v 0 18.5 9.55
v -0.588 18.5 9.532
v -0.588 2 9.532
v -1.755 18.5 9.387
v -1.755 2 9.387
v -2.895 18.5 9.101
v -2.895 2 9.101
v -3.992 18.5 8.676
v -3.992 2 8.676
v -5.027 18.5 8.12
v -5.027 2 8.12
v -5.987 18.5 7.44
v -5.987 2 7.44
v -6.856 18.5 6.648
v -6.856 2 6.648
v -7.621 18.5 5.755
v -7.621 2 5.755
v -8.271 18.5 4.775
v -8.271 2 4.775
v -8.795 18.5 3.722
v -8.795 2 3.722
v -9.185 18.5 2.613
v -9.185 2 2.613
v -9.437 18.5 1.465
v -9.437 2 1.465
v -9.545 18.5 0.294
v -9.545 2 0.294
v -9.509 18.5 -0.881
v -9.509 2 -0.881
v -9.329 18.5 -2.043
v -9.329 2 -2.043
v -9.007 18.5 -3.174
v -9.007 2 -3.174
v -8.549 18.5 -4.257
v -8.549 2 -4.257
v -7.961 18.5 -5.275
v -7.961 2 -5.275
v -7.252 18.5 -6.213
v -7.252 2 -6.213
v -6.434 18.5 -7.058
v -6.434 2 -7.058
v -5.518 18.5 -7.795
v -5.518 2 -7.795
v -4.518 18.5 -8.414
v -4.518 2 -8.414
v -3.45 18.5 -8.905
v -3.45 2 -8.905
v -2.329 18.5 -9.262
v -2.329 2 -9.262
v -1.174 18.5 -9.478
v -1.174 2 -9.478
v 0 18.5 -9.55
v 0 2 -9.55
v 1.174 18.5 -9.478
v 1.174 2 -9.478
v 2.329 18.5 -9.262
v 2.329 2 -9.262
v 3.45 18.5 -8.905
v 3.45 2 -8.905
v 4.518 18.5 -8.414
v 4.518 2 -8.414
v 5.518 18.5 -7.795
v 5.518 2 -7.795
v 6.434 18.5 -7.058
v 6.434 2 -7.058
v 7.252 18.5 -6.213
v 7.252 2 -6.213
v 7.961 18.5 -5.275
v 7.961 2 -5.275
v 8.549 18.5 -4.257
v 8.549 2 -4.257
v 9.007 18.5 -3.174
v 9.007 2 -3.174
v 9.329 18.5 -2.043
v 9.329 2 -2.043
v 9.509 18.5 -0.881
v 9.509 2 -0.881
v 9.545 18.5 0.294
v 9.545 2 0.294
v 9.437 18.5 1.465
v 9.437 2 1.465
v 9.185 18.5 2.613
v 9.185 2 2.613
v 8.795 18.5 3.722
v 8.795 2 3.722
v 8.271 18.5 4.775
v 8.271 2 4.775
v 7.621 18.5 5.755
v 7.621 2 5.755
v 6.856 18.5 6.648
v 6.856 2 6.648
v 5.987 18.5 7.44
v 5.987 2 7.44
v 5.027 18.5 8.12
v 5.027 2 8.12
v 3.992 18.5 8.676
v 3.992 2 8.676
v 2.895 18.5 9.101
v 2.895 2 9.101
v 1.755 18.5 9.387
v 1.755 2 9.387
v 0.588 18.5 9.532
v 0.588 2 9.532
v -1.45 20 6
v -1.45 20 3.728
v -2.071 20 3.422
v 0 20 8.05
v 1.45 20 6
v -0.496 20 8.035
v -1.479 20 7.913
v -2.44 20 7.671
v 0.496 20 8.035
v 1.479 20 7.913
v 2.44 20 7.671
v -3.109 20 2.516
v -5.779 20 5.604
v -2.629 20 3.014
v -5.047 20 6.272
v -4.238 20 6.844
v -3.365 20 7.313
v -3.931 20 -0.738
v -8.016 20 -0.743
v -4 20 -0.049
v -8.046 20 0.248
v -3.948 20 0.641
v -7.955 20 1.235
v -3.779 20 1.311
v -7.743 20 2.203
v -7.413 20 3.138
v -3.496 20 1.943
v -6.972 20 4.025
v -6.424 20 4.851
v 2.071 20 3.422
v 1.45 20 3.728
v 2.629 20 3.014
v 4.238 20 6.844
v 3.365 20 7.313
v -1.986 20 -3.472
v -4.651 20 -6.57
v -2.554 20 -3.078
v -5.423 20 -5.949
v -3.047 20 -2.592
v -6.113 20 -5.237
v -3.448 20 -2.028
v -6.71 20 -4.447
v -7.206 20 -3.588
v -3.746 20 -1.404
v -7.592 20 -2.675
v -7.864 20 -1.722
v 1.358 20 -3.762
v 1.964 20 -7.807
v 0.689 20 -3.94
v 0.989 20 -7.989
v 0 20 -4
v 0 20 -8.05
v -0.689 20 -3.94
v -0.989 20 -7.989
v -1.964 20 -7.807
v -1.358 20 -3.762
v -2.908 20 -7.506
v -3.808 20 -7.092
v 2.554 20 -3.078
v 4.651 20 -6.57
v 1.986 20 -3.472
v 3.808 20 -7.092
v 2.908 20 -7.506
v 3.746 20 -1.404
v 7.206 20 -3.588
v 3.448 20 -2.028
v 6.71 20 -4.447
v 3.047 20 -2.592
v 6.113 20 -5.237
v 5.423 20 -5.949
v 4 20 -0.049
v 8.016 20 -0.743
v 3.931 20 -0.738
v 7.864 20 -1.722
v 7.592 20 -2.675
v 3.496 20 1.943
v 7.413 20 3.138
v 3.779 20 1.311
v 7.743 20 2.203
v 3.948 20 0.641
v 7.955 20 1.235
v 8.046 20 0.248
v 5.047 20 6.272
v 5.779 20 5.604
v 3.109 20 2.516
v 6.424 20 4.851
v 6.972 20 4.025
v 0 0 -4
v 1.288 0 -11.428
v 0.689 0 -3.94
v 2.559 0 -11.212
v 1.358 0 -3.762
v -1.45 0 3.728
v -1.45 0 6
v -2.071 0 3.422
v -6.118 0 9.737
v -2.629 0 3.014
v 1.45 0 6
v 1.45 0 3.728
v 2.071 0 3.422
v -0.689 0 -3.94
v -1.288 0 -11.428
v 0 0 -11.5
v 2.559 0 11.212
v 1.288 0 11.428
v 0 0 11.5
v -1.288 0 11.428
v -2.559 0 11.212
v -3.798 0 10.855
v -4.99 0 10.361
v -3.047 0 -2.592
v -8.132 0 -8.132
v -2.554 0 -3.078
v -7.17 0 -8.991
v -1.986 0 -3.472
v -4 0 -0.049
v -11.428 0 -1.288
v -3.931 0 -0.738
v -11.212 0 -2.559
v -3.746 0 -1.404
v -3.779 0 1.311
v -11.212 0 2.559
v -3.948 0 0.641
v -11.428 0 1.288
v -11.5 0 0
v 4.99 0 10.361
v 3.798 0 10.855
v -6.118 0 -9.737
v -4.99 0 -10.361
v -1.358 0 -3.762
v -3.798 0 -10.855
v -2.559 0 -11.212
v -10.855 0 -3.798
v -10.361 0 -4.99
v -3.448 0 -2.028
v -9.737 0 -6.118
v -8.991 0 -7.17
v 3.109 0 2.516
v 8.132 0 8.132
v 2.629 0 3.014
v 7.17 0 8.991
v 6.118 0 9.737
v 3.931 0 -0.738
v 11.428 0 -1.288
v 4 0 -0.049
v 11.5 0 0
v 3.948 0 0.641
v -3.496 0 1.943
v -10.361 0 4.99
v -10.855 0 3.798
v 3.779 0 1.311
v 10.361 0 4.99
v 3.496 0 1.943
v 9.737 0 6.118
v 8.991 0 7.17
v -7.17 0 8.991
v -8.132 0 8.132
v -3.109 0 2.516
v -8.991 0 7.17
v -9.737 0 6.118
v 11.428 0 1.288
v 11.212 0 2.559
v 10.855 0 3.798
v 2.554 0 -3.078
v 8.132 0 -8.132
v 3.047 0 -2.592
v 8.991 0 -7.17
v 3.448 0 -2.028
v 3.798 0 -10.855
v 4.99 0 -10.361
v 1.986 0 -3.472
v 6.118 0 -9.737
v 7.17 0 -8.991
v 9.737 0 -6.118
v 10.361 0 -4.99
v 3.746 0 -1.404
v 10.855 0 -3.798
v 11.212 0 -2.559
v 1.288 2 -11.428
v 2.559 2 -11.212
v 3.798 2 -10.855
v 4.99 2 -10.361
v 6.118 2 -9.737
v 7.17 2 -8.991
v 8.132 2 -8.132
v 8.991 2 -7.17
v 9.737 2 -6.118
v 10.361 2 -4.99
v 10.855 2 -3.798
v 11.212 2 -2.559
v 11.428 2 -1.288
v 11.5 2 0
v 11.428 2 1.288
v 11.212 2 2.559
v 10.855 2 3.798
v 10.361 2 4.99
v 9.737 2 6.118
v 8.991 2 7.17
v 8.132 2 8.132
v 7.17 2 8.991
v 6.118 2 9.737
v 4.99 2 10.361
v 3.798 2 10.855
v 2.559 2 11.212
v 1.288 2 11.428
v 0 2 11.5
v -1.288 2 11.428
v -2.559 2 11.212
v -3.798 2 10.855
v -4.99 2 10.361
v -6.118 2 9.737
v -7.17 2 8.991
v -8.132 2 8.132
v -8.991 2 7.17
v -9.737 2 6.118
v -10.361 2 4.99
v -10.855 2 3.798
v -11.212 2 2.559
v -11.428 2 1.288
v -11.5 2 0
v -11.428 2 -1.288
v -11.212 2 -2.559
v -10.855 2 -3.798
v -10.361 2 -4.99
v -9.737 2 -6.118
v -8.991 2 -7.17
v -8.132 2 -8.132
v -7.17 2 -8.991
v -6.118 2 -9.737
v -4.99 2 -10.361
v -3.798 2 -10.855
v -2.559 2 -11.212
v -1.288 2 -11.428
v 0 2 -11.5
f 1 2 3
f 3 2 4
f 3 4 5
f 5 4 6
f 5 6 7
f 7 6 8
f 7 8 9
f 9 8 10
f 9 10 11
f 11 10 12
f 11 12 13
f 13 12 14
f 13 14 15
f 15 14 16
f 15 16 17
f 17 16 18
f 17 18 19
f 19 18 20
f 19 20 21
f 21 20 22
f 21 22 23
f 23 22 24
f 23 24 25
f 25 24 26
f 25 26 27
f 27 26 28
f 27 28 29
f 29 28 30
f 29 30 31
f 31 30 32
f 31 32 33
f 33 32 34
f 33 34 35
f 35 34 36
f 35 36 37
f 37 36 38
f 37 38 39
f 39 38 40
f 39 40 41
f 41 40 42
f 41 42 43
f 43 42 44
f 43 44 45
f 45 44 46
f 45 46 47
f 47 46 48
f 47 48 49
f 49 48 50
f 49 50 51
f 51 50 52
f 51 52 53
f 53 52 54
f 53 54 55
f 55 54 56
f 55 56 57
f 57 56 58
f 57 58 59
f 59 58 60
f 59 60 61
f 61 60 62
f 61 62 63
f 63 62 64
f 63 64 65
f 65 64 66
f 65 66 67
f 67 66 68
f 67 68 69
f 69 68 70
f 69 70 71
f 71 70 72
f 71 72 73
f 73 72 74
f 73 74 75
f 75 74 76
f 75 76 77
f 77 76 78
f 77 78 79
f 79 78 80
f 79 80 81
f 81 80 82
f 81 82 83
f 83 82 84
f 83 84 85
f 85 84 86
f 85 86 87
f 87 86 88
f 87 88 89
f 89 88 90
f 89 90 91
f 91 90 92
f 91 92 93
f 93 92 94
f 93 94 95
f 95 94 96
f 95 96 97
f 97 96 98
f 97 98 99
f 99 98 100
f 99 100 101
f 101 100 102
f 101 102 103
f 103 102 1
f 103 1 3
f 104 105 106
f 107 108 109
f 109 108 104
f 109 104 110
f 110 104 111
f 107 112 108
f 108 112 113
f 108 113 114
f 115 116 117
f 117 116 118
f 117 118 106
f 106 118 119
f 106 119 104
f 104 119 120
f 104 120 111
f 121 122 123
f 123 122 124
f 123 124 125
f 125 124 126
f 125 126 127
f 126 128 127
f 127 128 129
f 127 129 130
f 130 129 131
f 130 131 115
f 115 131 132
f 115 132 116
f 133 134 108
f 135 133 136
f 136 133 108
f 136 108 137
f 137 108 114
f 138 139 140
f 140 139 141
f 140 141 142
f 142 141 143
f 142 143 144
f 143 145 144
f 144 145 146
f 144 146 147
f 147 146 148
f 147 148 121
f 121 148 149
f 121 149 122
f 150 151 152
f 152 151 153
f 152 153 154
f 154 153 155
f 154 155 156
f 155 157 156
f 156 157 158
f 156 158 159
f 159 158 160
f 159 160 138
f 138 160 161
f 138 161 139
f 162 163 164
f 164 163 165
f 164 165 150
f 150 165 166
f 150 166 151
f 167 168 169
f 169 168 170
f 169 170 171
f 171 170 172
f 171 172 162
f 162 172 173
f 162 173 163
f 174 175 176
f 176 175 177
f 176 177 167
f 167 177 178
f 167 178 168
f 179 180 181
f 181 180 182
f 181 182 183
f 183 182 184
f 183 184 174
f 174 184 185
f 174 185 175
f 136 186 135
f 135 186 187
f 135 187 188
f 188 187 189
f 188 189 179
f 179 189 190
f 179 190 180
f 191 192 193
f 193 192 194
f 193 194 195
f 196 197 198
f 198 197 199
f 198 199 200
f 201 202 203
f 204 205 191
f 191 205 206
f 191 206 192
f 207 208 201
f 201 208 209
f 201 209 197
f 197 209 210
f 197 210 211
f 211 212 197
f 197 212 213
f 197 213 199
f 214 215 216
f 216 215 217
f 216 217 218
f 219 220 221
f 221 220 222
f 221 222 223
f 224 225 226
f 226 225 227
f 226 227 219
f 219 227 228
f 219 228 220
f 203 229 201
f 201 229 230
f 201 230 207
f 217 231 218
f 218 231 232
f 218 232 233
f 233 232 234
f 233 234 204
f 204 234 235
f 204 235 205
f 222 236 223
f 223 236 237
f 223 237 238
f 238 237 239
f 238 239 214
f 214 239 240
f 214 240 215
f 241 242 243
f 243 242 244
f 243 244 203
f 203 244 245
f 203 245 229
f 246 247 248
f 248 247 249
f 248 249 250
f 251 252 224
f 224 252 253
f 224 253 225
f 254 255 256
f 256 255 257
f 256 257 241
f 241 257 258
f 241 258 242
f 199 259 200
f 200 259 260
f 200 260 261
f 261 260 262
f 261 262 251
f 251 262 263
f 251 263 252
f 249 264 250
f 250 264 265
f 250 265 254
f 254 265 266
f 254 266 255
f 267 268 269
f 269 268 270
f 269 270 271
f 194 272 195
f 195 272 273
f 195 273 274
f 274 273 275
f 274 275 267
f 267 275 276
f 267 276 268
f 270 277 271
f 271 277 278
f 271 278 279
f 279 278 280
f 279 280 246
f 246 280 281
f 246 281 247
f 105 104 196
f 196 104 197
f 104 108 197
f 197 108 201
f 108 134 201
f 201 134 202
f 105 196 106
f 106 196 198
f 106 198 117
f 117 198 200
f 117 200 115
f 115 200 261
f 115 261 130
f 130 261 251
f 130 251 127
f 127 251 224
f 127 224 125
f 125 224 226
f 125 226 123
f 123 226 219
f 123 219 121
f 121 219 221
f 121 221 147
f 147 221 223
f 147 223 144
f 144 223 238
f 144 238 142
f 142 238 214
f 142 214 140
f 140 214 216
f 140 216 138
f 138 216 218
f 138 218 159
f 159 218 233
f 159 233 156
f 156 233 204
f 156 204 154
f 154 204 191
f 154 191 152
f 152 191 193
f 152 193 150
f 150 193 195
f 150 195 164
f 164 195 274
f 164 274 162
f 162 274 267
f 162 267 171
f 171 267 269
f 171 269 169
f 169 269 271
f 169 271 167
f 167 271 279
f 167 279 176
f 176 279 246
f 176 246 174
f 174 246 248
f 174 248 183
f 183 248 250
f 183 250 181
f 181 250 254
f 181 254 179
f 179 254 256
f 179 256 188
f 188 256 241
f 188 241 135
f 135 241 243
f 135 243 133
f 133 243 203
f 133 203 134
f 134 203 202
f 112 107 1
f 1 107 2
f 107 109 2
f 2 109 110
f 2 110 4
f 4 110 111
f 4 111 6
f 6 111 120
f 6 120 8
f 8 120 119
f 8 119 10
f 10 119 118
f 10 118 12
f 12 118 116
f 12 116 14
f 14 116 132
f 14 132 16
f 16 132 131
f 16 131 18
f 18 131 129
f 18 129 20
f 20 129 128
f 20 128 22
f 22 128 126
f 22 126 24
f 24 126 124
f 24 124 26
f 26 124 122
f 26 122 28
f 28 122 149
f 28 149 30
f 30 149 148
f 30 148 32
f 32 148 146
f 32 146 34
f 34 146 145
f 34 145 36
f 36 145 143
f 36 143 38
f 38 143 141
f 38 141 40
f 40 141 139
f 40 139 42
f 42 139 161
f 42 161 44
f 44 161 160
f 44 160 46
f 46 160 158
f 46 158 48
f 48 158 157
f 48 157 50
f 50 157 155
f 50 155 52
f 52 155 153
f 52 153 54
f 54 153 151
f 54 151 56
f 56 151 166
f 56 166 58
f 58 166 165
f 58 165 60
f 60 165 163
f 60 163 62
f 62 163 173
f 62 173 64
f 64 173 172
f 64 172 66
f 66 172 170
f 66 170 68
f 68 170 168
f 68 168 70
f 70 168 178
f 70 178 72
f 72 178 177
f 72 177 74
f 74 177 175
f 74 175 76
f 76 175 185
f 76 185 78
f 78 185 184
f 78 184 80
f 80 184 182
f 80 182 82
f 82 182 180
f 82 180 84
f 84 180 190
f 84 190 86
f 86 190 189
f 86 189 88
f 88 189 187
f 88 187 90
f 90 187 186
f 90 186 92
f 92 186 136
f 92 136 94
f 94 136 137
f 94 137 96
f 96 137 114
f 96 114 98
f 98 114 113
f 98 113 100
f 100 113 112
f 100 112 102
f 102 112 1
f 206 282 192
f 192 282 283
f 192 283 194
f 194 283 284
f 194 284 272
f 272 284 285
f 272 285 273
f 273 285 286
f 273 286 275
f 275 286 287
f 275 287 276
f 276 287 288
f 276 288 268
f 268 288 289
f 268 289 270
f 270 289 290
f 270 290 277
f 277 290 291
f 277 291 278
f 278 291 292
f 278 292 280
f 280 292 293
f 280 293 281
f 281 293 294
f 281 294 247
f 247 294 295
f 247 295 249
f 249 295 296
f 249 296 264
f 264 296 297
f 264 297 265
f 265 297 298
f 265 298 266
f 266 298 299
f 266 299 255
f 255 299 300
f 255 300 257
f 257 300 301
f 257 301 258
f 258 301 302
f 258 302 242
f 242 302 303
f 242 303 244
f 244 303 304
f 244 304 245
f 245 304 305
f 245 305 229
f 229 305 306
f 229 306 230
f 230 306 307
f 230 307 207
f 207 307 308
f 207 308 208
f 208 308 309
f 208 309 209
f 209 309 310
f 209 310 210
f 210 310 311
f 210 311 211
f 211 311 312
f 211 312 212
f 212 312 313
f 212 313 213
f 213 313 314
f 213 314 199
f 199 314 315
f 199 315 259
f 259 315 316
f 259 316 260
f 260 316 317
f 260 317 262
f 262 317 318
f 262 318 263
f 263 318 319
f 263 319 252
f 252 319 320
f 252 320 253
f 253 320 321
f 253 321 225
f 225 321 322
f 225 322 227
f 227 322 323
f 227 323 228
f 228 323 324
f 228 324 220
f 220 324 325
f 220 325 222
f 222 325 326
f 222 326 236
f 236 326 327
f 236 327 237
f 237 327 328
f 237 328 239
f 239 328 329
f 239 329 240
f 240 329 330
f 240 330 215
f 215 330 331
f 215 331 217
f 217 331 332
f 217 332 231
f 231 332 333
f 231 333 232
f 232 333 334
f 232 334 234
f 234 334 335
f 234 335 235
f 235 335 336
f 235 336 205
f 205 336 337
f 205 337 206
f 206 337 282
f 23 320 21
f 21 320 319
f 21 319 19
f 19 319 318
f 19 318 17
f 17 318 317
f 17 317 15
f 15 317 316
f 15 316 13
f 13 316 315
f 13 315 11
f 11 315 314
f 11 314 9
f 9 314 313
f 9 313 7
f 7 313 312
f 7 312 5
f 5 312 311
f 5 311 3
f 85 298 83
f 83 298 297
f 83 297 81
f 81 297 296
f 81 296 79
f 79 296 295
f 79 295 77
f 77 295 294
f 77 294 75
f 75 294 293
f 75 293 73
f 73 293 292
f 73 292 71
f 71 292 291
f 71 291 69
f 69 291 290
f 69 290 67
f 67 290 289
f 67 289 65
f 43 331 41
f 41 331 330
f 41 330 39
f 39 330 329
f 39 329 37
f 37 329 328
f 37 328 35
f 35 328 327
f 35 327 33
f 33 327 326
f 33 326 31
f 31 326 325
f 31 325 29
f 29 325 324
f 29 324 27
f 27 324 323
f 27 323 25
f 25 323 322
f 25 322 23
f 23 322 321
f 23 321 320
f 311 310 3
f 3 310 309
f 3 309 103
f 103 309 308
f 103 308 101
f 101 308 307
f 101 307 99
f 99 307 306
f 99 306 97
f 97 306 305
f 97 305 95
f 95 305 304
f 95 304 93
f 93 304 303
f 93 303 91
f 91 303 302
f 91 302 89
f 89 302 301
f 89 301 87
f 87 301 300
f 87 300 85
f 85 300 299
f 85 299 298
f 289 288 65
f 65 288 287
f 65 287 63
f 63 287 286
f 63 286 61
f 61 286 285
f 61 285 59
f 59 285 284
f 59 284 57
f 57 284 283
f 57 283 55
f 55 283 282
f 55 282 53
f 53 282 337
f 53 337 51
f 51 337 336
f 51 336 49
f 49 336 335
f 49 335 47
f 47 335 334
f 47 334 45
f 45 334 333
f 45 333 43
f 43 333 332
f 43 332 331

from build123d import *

# Parameters (mm, degrees)
SKETCH1_R           = 9.55
BOSS_EXTRUDE1_DEPTH = 20
CHAMFER1_SIZE       = 1.5
SKETCH2_R           = 11.5
SKETCH2_R_2         = 9.55
BOSS_EXTRUDE2_DEPTH = 2


with BuildPart() as part:
    # Sketch1 → Boss-Extrude1 (new body)
    with BuildSketch(Plane(origin=(0, 0, 0), x_dir=(1, 0, 0), z_dir=(0, 1, 0))):
        with Locations(Location((0, 0, 0), (0, 0, 270))):
            Circle(SKETCH1_R)
        with BuildLine():
            Line((-1.45, -6), (1.45, -6))
            Line((1.45, -6), (1.45, -3.727935085))
            ThreePointArc((1.45, -3.727935085), (0, 4), (-1.45, -3.727935085))
            Line((-1.45, -3.727935085), (-1.45, -6))
        make_face(mode=Mode.SUBTRACT)
    extrude(amount=BOSS_EXTRUDE1_DEPTH)

    # Chamfer1
    chamfer1_edges = [part.edges().sort_by_distance(p)[0] for p in [
        (0, 20, -9.55),
    ]]
    chamfer(chamfer1_edges, length=CHAMFER1_SIZE)

    # Sketch2 → Boss-Extrude2 (add)
    with BuildSketch(Plane.XZ):
        with Locations(Location((0, 0, 0), (0, 0, 270))):
            Circle(SKETCH2_R)
        with Locations(Location((0, 0, 0), (0, 0, 270))):
            Circle(SKETCH2_R_2, mode=Mode.SUBTRACT)
    extrude(amount=-BOSS_EXTRUDE2_DEPTH)


solid = part.part
